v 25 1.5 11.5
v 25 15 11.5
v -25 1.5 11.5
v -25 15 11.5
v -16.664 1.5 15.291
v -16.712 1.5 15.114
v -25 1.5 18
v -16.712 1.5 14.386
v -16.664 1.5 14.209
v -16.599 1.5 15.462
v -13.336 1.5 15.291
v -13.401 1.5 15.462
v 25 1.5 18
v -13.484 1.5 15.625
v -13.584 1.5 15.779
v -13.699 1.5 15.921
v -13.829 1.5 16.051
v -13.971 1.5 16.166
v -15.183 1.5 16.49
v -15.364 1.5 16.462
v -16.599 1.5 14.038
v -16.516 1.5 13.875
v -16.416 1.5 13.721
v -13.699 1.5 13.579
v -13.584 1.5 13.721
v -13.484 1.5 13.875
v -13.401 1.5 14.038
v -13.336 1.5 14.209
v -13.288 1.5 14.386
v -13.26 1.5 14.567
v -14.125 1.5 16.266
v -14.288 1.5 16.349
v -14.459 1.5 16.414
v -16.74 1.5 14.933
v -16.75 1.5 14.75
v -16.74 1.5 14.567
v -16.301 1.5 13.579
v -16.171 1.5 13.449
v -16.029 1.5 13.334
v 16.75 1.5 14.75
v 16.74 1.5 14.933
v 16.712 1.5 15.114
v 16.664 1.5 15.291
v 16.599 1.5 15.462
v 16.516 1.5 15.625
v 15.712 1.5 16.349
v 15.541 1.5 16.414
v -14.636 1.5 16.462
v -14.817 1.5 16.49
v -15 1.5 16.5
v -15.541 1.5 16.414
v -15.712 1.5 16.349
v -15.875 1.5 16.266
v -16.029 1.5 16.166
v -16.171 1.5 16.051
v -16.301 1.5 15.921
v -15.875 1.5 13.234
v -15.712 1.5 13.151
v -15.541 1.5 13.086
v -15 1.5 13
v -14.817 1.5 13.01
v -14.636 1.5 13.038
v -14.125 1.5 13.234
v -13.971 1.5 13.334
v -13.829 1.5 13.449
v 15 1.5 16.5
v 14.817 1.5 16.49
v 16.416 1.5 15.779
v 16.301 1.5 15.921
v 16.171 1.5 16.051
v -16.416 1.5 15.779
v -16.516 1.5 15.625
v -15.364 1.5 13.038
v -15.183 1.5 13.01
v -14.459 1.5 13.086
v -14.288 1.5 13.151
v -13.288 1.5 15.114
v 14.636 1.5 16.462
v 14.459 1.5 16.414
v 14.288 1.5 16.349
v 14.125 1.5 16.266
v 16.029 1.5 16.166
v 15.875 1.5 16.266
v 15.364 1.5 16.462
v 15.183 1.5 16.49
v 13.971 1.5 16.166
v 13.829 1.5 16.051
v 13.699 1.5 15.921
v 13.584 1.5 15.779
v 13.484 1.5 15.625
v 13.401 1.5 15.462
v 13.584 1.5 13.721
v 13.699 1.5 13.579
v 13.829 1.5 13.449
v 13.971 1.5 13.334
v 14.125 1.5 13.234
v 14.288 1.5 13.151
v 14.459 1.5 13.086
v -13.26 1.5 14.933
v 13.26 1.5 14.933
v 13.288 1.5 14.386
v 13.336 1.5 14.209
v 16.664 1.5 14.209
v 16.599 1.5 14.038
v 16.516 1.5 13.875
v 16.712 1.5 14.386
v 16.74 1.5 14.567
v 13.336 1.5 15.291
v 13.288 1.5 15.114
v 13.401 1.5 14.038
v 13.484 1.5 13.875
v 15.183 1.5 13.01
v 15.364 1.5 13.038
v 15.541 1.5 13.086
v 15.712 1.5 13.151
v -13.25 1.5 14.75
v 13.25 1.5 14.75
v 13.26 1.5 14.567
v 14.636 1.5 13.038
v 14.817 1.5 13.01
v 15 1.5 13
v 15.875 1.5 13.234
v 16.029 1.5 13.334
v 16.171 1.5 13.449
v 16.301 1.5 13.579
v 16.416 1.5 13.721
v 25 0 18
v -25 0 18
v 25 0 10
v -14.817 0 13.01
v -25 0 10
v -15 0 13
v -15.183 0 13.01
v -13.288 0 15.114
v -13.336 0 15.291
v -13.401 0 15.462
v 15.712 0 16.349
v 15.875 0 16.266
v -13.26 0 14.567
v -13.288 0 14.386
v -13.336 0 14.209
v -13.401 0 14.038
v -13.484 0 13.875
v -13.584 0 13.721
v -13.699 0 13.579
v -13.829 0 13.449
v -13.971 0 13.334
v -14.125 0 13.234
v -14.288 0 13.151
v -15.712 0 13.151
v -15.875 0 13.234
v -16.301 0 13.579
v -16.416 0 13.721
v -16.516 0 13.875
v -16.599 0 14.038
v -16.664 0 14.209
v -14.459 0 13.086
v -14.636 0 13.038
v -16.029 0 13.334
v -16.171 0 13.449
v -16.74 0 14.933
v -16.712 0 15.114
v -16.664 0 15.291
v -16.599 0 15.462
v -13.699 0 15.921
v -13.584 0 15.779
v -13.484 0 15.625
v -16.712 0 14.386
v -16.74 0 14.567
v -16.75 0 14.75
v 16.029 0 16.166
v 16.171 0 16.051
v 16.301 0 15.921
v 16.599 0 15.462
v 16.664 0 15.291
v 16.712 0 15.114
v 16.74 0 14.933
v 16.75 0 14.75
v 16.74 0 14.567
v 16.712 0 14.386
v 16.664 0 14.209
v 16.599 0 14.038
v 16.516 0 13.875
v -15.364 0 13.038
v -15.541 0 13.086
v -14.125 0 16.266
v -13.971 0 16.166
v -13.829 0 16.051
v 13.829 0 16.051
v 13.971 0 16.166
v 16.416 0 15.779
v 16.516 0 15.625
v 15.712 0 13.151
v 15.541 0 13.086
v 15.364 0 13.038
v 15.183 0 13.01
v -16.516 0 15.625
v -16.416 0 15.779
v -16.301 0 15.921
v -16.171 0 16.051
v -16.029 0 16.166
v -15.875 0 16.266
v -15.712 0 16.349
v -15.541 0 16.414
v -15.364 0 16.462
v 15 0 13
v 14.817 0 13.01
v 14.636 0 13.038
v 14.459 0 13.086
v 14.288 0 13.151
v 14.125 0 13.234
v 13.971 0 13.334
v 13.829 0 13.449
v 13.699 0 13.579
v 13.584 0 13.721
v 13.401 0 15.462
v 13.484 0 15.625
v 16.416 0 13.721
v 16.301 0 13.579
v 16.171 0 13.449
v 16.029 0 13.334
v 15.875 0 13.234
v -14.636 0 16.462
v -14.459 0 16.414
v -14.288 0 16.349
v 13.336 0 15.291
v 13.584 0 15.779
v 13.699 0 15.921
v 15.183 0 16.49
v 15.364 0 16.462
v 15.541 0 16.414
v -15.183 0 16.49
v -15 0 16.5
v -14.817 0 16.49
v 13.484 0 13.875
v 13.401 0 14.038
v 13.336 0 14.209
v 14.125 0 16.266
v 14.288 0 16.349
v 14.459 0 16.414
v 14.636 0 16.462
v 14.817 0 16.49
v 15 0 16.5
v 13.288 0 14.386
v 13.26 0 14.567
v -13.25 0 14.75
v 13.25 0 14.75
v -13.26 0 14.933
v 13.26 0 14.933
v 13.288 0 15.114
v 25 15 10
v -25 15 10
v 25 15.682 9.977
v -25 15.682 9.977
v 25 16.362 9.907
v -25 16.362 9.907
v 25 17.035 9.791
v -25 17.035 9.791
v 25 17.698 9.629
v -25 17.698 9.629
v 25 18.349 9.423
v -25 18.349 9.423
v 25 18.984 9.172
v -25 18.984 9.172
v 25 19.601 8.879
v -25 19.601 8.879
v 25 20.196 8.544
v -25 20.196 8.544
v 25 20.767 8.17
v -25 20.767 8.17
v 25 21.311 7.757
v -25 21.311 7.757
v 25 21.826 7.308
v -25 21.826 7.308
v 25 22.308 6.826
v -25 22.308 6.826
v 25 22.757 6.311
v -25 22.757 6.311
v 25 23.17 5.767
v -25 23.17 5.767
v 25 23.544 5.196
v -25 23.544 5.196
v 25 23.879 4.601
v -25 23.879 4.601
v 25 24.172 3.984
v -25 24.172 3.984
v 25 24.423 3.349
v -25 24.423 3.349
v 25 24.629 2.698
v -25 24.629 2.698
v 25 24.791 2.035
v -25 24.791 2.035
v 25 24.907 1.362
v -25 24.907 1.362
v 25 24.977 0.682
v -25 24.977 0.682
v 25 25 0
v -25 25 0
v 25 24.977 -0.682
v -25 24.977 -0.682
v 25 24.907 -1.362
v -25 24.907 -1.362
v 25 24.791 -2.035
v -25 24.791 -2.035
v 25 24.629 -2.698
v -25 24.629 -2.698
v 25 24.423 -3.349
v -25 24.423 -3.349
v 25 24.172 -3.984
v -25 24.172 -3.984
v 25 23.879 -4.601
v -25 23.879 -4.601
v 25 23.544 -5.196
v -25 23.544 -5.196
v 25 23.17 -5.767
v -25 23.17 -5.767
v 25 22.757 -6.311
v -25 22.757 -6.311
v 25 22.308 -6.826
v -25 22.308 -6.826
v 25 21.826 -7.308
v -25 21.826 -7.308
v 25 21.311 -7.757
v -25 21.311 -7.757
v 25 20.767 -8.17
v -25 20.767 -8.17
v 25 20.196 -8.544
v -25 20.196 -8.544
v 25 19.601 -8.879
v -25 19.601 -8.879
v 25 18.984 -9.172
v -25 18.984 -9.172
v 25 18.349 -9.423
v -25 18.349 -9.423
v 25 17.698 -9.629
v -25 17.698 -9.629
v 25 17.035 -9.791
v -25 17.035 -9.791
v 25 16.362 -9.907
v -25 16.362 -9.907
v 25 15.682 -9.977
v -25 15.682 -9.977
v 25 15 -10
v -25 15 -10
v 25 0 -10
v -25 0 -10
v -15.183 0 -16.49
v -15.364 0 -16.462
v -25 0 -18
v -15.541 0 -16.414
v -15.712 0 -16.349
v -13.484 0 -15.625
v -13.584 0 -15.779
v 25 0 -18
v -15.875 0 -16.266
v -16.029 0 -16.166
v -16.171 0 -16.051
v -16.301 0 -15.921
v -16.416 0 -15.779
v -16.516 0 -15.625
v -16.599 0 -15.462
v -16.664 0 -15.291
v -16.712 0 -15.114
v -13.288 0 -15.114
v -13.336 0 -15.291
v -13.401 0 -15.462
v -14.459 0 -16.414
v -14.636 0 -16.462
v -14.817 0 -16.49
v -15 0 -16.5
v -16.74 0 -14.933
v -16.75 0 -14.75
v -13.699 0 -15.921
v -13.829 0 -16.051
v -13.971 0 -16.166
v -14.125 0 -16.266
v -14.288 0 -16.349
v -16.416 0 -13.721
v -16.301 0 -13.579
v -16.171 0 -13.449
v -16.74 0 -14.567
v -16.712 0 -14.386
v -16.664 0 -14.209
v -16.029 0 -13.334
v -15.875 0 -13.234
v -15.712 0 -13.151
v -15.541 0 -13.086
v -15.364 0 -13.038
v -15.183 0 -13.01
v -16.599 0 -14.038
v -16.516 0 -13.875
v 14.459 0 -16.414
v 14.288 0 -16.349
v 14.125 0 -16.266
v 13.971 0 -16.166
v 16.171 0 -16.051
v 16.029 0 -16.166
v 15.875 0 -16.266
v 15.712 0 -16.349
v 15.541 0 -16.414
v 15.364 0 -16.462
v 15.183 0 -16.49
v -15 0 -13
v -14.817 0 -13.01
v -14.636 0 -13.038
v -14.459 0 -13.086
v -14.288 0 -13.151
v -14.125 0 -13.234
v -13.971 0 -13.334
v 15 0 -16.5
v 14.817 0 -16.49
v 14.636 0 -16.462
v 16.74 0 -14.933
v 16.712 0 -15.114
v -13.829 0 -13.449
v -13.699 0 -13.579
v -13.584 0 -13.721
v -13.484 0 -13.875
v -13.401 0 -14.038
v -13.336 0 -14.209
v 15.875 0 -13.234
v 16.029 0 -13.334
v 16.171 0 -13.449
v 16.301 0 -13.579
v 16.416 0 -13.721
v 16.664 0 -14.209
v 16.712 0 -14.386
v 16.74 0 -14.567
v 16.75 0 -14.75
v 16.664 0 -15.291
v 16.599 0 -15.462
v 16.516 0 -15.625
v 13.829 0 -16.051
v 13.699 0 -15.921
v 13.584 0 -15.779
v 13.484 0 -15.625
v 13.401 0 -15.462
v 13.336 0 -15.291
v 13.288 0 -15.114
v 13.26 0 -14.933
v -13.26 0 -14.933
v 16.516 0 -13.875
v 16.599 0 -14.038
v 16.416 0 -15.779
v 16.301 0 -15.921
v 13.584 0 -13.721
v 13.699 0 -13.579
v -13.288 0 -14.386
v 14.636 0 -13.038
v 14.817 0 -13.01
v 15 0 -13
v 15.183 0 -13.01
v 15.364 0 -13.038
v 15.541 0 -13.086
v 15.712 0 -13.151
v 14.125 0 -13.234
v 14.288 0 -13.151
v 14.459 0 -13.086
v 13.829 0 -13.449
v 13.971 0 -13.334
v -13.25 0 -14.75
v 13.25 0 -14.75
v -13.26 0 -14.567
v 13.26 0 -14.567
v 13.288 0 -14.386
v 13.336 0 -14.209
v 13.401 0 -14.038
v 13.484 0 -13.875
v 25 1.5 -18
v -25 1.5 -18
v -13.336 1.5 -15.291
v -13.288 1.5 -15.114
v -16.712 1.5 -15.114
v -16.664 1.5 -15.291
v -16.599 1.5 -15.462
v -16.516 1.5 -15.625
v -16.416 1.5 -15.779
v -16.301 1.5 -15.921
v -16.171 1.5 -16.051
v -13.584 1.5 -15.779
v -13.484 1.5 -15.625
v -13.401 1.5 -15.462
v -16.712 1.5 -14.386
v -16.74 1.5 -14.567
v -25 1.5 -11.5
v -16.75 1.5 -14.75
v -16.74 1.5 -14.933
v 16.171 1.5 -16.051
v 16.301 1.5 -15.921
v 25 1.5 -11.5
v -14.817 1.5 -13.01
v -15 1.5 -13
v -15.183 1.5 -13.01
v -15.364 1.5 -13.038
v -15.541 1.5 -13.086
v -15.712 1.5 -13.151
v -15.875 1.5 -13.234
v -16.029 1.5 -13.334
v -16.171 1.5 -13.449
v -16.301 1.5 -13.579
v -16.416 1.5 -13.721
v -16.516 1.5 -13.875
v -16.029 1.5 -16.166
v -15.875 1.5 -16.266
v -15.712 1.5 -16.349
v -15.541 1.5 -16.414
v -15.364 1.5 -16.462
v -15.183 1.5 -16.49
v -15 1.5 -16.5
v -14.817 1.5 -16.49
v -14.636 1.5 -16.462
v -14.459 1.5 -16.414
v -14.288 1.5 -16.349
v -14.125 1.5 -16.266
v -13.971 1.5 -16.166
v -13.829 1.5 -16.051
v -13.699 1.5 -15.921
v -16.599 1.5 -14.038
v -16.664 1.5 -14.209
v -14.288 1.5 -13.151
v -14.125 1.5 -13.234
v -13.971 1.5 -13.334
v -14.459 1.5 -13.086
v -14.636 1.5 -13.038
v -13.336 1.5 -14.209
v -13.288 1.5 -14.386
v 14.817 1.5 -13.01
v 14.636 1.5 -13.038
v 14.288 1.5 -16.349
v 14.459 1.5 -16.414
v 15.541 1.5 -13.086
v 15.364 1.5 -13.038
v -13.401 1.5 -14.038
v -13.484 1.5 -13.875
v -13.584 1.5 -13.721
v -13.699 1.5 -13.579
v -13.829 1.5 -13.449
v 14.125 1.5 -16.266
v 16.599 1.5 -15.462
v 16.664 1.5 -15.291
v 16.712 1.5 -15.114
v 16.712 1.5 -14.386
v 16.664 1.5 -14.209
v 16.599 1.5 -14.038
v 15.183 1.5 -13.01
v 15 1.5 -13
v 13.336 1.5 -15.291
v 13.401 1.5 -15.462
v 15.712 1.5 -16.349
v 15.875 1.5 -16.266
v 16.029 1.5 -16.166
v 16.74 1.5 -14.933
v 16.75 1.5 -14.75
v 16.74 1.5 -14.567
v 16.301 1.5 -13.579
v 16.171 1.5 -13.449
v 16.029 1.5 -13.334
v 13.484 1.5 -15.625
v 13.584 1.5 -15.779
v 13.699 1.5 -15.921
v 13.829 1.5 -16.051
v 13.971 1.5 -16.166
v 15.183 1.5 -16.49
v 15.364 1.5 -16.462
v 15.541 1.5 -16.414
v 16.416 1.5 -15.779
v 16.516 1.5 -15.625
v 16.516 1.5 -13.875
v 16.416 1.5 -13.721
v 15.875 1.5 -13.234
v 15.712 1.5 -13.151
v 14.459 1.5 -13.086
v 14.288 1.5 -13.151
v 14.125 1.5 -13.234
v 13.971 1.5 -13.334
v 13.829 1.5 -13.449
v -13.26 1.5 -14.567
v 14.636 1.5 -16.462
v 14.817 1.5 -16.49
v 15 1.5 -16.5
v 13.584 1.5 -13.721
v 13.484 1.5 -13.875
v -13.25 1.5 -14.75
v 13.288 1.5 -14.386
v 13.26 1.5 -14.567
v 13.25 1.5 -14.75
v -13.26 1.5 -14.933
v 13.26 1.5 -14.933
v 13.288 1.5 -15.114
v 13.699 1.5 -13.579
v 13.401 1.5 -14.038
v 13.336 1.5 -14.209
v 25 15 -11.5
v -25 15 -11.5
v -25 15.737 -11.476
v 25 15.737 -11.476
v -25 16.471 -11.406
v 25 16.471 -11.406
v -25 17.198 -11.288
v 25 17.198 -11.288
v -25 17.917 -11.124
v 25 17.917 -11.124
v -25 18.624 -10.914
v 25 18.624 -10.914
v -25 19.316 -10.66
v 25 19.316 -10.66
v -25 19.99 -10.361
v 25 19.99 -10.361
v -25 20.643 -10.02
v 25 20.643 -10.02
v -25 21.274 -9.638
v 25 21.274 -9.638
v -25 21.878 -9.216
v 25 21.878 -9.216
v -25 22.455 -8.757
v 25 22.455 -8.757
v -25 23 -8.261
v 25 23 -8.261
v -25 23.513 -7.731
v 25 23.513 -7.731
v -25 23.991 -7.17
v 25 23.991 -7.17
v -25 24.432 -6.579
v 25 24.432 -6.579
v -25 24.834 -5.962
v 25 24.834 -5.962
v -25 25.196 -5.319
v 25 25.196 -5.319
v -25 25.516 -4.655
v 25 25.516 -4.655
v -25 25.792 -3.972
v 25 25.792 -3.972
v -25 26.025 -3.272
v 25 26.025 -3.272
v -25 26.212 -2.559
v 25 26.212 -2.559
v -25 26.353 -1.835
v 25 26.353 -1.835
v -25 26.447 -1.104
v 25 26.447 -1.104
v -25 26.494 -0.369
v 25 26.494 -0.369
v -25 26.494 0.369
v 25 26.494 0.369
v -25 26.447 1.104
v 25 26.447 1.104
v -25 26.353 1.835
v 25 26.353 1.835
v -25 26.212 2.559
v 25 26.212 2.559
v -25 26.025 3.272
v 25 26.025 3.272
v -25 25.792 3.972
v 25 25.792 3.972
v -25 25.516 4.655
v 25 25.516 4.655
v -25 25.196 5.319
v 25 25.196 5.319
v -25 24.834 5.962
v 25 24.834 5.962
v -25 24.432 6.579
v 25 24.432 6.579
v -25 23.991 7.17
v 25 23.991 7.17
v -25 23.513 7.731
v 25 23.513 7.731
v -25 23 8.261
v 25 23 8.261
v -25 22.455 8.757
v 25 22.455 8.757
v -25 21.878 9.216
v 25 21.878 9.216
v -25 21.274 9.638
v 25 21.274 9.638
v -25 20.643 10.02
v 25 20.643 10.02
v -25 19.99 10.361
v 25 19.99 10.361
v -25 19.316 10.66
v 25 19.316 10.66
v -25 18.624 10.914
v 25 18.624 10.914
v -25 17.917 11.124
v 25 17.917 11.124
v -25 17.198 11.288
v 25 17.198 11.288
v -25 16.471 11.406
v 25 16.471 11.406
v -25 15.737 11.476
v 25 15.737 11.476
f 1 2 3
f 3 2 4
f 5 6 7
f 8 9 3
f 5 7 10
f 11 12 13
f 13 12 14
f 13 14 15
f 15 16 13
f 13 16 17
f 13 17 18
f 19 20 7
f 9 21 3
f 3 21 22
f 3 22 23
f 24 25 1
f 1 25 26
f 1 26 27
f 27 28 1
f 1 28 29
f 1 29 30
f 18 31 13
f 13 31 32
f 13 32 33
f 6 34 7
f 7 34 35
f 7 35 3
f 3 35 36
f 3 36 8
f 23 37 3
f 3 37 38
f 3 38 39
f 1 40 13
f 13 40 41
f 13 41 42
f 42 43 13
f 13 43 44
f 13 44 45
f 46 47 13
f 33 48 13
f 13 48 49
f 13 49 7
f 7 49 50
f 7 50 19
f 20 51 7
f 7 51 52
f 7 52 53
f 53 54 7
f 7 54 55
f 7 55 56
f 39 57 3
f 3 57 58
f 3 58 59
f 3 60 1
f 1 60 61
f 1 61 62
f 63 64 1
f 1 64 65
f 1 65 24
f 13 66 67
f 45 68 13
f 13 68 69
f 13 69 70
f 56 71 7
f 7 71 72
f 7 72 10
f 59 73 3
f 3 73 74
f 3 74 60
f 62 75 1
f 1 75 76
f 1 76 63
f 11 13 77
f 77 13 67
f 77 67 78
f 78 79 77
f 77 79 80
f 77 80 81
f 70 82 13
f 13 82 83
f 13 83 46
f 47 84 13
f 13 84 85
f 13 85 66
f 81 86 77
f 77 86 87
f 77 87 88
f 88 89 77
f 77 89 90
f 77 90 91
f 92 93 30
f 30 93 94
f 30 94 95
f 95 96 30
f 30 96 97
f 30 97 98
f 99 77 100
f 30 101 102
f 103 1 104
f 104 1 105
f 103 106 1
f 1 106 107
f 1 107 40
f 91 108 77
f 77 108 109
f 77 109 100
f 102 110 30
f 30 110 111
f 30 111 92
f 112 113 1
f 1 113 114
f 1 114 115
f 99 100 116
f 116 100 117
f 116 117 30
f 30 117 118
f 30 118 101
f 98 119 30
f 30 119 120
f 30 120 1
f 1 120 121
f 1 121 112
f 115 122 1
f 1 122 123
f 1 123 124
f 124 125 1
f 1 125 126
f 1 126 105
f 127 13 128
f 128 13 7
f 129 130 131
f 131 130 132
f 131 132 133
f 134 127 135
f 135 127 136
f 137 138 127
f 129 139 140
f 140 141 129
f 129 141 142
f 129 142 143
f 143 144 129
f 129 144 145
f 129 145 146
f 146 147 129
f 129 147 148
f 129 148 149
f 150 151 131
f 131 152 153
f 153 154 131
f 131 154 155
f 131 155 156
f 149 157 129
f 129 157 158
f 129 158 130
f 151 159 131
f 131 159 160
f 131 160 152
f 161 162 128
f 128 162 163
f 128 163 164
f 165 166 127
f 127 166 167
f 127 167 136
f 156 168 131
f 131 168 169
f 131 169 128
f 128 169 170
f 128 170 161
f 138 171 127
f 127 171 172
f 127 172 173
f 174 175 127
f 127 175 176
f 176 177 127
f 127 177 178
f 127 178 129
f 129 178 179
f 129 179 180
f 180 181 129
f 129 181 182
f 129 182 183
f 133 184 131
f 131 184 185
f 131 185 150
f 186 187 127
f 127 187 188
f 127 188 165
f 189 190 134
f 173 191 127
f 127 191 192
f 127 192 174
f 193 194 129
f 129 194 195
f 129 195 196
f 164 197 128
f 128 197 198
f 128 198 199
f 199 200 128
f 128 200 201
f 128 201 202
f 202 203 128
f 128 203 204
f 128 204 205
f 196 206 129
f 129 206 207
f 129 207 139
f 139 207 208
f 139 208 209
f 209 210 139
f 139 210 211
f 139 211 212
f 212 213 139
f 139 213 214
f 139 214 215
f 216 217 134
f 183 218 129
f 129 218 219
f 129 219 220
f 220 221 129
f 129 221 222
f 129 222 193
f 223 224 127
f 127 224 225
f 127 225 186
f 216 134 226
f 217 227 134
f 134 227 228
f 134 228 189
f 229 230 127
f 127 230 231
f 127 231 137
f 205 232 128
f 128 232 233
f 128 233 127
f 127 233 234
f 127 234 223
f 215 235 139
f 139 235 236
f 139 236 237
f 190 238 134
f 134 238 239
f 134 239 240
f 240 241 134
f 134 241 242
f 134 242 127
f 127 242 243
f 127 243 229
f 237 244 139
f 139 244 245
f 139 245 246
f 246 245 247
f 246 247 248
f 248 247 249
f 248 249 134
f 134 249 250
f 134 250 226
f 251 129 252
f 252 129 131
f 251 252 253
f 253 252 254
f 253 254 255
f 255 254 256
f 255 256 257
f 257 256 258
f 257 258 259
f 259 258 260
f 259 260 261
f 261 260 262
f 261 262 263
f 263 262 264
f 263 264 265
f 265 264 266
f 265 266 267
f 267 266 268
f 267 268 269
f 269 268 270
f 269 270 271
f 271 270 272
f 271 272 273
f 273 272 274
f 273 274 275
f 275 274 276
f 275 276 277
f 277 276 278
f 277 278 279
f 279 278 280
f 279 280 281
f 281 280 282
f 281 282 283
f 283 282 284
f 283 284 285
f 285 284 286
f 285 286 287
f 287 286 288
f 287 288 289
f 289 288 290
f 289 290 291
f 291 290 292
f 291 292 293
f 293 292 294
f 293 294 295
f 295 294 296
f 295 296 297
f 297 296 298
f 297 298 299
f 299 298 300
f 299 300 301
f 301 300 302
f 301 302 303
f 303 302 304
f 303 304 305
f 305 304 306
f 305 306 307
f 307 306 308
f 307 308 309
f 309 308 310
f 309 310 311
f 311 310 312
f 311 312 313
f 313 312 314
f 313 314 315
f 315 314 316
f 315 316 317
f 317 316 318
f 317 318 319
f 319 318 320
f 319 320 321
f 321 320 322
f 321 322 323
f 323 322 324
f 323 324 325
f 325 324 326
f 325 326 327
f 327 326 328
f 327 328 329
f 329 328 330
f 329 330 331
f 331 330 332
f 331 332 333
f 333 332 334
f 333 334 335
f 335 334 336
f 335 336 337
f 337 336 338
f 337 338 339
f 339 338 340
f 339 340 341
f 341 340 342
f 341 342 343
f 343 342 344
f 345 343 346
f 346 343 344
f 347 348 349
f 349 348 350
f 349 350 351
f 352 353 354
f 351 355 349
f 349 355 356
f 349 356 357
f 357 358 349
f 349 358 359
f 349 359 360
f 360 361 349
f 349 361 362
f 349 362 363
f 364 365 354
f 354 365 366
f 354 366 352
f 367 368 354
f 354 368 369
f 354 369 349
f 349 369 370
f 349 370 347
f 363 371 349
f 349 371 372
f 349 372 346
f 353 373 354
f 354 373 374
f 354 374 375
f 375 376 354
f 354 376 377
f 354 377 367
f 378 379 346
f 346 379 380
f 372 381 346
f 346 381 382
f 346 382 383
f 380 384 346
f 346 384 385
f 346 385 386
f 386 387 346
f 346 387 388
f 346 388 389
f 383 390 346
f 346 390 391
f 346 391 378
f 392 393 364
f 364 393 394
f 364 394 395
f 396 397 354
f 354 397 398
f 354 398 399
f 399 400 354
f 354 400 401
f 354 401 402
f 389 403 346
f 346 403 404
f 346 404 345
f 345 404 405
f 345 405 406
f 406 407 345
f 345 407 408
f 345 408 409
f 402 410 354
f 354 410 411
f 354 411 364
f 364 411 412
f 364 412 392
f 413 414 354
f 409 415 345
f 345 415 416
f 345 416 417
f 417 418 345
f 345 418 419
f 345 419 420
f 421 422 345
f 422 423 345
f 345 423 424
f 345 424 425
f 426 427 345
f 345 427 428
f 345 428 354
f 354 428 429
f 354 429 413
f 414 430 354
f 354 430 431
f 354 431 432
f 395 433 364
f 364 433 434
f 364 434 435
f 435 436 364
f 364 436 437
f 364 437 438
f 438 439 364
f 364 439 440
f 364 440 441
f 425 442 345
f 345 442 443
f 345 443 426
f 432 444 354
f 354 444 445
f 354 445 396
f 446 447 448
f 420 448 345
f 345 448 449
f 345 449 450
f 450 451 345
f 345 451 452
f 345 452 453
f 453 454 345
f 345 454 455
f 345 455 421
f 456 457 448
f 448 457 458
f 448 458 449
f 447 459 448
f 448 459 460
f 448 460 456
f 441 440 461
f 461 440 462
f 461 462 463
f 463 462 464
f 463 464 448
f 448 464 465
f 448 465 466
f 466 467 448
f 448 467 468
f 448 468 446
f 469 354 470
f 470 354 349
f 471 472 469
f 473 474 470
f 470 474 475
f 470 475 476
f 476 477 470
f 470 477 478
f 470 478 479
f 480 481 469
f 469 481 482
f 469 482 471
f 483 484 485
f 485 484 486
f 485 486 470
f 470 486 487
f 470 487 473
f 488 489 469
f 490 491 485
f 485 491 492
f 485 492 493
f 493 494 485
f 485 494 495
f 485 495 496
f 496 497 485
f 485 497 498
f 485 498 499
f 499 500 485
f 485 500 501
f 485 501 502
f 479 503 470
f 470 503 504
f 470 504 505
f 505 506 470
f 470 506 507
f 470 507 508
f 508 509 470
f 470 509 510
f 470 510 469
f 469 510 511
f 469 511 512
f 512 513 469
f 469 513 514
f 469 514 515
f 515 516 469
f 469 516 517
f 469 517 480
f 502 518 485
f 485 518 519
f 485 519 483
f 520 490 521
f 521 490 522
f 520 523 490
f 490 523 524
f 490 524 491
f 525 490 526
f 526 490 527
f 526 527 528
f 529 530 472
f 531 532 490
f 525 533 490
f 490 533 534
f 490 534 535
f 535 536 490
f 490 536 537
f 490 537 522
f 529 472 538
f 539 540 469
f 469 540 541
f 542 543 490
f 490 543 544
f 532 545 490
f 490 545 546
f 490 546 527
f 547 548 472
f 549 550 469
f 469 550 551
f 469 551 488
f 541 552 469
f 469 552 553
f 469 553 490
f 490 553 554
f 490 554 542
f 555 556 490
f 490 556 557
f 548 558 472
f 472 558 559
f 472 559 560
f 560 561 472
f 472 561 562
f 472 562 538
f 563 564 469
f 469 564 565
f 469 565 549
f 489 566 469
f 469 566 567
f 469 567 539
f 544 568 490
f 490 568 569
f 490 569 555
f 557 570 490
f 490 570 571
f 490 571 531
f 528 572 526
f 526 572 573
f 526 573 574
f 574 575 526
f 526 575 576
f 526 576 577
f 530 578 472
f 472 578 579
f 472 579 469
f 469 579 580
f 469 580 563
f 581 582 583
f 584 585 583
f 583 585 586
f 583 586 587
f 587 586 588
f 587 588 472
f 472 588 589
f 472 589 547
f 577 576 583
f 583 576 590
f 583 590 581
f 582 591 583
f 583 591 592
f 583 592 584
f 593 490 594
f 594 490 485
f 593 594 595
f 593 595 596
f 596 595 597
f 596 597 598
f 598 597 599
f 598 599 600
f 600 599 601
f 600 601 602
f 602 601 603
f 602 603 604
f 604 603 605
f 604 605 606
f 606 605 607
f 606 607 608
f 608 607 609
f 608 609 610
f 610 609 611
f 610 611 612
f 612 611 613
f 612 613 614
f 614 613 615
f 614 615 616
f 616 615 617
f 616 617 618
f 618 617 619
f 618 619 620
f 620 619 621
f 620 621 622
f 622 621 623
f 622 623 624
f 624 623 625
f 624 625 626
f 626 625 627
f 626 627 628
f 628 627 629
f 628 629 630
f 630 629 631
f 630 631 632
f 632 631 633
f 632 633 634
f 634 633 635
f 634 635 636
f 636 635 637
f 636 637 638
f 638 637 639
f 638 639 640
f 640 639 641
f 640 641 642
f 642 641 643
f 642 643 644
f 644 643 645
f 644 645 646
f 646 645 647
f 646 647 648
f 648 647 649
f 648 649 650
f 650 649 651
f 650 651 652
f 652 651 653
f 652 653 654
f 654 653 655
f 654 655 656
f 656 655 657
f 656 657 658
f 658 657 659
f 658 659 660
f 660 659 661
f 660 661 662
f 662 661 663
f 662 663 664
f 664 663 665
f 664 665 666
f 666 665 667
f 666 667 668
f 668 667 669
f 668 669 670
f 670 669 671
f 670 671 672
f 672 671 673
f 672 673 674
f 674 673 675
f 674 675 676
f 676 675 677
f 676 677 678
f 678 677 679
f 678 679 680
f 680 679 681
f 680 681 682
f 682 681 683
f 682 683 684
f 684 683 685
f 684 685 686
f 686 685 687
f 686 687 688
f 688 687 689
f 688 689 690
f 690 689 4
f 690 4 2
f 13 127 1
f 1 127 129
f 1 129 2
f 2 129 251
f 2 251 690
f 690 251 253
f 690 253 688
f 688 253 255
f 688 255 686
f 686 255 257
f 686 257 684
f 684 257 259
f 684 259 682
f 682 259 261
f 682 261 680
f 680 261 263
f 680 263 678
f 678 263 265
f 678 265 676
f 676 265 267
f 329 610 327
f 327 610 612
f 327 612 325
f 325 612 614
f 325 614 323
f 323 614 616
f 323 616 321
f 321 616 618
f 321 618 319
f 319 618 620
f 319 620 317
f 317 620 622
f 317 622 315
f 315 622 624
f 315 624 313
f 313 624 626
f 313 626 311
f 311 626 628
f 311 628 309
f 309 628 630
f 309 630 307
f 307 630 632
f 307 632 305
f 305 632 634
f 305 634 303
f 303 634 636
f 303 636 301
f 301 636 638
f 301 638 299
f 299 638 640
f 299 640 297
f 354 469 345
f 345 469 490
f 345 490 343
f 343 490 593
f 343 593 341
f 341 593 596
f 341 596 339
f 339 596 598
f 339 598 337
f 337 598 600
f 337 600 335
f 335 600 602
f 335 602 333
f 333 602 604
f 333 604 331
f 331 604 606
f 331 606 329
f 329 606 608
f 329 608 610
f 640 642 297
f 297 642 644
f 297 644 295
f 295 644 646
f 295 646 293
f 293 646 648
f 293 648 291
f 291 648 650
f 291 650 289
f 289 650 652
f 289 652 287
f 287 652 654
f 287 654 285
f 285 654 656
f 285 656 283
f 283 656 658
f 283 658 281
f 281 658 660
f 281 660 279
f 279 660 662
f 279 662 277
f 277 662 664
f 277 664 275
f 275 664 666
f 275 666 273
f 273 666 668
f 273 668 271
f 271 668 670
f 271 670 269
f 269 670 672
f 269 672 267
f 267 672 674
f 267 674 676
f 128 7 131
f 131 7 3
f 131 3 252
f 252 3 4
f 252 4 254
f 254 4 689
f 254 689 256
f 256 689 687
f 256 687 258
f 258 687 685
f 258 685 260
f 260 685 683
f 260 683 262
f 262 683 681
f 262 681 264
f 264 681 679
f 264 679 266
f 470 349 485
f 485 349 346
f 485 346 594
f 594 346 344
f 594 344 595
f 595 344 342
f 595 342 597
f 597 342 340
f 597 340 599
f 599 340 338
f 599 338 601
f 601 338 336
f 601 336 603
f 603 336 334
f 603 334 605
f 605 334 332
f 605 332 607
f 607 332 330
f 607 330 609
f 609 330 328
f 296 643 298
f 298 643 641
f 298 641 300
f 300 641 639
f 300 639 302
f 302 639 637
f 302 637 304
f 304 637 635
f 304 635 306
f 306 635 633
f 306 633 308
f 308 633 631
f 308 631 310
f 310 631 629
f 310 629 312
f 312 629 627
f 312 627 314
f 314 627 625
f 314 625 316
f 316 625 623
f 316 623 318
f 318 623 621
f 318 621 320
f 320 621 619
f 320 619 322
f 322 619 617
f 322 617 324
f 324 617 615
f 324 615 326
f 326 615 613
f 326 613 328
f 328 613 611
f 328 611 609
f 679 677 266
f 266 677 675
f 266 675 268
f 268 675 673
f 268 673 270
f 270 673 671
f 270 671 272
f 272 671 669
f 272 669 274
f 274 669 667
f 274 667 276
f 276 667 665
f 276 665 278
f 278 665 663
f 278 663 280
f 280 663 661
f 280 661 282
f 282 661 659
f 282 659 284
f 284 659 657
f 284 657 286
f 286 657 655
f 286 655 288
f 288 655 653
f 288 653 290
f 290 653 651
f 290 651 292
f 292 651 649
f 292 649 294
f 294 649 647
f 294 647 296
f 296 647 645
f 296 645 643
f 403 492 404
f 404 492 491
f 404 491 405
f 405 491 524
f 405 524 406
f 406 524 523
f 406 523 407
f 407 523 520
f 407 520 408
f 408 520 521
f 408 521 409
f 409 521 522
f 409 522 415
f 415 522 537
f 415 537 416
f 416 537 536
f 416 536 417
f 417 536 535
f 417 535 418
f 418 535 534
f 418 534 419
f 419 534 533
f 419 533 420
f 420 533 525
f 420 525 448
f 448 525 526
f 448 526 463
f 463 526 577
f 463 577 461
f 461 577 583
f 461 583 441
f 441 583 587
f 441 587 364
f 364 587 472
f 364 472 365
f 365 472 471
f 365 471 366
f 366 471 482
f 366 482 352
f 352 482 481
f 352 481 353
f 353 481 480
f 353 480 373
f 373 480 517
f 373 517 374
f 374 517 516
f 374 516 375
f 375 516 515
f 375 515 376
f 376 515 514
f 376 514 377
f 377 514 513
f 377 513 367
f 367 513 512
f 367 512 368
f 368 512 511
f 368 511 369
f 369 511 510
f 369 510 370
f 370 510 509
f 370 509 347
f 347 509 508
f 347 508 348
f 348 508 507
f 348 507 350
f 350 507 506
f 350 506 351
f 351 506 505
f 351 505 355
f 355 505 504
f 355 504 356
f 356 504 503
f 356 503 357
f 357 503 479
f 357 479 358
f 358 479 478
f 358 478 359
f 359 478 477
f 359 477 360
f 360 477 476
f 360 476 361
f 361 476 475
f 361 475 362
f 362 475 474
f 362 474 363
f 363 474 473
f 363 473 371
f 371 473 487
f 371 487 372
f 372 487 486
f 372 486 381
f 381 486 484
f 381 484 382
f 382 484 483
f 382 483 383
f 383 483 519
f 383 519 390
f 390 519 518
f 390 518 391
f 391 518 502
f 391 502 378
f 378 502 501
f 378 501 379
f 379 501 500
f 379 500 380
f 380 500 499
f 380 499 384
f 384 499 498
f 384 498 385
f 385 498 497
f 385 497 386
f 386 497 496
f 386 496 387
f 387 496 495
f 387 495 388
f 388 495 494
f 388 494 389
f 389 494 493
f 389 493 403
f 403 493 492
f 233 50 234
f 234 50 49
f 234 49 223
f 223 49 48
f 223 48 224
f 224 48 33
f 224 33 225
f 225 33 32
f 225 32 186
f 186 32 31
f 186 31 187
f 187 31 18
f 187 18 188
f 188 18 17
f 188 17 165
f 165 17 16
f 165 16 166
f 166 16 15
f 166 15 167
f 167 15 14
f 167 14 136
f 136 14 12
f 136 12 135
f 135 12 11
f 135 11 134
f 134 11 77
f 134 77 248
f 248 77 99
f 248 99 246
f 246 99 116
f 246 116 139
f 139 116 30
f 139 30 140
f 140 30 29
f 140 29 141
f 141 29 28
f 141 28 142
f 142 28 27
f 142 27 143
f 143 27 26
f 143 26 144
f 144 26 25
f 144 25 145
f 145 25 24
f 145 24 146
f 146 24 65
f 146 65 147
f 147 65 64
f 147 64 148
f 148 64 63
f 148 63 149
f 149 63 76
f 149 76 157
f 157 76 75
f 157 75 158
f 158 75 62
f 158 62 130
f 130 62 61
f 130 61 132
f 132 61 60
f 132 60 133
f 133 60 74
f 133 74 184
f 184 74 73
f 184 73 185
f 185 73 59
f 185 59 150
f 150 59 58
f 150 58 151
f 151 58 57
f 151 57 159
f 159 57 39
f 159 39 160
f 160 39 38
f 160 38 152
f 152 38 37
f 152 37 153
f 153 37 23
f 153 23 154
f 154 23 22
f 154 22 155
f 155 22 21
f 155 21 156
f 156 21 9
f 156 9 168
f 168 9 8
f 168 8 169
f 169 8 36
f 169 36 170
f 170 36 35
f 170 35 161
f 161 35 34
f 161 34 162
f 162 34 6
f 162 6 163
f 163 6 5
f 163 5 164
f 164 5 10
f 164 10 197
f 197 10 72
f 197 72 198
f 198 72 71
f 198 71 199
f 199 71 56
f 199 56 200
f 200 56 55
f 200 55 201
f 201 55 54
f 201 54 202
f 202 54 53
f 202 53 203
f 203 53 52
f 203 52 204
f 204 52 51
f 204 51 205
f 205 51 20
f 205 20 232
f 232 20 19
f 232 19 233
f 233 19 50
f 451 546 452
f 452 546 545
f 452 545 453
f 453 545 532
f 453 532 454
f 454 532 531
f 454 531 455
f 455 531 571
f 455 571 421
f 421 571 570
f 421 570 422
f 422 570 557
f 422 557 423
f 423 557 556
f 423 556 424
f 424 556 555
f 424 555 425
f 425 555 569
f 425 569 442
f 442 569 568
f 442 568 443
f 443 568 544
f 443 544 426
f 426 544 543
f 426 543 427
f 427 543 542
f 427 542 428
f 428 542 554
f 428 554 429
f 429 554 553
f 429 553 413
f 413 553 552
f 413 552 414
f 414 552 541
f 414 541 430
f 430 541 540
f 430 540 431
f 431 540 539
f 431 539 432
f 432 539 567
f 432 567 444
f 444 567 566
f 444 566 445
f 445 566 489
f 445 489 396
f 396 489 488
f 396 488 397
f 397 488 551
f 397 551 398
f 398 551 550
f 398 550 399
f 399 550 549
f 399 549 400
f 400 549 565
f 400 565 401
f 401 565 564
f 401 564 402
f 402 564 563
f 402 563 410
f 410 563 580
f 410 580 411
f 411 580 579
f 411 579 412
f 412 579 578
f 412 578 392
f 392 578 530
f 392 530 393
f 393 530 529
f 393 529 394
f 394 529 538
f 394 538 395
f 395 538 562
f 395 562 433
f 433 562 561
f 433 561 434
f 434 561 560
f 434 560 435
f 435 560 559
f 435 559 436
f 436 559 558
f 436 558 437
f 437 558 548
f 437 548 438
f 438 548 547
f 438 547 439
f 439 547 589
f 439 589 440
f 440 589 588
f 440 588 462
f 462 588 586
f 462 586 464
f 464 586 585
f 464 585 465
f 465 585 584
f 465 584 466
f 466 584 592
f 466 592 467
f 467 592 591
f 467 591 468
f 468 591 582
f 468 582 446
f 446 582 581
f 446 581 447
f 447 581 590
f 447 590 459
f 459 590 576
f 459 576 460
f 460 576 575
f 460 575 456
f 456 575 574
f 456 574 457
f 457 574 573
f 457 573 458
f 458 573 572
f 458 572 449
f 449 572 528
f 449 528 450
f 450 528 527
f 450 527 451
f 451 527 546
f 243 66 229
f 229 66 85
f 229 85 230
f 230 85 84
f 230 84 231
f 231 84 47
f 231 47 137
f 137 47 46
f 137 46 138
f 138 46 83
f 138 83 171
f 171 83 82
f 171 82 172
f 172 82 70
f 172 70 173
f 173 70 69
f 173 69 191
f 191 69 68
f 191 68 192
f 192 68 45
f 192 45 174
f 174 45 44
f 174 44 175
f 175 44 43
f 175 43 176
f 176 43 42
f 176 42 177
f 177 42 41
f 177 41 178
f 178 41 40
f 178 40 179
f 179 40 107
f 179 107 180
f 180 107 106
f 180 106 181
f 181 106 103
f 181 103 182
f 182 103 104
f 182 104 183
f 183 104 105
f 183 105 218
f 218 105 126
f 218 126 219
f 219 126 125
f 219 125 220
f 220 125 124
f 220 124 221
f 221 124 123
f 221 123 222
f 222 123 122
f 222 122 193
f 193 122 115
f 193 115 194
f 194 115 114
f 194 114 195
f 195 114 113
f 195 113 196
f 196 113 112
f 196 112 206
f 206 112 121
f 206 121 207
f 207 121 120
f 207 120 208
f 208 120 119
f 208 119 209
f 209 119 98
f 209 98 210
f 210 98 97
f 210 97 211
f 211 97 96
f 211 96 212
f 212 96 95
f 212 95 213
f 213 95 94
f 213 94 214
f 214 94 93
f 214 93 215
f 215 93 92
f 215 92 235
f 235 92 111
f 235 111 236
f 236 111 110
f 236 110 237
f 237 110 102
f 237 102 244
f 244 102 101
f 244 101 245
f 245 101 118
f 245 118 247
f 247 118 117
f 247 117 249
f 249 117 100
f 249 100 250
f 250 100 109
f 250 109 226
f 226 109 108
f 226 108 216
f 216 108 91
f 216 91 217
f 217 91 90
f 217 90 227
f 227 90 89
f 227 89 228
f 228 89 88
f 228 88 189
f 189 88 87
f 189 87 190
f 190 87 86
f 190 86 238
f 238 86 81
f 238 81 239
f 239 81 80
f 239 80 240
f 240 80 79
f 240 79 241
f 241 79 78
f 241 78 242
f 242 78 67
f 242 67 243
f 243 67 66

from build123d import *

# Parameters (mm, degrees)
BOSS_EXTRUDE1_DEPTH = 25
SKETCH2_R           = 1.75
CUT_EXTRUDE1_DEPTH  = 40.67366885


with BuildPart() as part:
    # Sketch1 → Boss-Extrude1 (new, symmetric)
    with BuildSketch(Plane(origin=(0, 0, 0), x_dir=(0, 0, -1), z_dir=(1, 0, 0))):
        with BuildLine():
            Line((-10, 15), (-10, 0))
            Line((-10, 0), (-18, 0))
            Line((-18, 0), (-18, 1.5))
            Line((-18, 1.5), (-11.5, 1.5))
            Line((-11.5, 1.5), (-11.5, 15))
            ThreePointArc((-11.5, 15), (0, 26.5), (11.5, 15))
            Line((11.5, 15), (11.5, 1.5))
            Line((11.5, 1.5), (18, 1.5))
            Line((18, 1.5), (18, 0))
            Line((18, 0), (10, 0))
            Line((10, 0), (10, 15))
            ThreePointArc((10, 15), (0, 25), (-10, 15))
        make_face()
    extrude(amount=BOSS_EXTRUDE1_DEPTH, both=True)

    # Sketch2 → Cut-Extrude1 (cut, through all)
    with BuildSketch(Plane(origin=(0, 1.5, 0), x_dir=(1, 0, 0), z_dir=(0, 1, 0))):
        with Locations(Location((-15, 14.75, 0), (0, 0, 270))):
            Circle(SKETCH2_R)
        with Locations(Location((-15, -14.75, 0), (0, 0, 270))):
            Circle(SKETCH2_R)
    cut_extrude1 = extrude(amount=-CUT_EXTRUDE1_DEPTH, mode=Mode.SUBTRACT)

    # Mirror1: Cut-Extrude1 across plane
    add(cut_extrude1.mirror(Plane(origin=(0, 0, 0), x_dir=(0, 0, 1), z_dir=(1, 0, 0))), mode=Mode.SUBTRACT)


solid = part.part
